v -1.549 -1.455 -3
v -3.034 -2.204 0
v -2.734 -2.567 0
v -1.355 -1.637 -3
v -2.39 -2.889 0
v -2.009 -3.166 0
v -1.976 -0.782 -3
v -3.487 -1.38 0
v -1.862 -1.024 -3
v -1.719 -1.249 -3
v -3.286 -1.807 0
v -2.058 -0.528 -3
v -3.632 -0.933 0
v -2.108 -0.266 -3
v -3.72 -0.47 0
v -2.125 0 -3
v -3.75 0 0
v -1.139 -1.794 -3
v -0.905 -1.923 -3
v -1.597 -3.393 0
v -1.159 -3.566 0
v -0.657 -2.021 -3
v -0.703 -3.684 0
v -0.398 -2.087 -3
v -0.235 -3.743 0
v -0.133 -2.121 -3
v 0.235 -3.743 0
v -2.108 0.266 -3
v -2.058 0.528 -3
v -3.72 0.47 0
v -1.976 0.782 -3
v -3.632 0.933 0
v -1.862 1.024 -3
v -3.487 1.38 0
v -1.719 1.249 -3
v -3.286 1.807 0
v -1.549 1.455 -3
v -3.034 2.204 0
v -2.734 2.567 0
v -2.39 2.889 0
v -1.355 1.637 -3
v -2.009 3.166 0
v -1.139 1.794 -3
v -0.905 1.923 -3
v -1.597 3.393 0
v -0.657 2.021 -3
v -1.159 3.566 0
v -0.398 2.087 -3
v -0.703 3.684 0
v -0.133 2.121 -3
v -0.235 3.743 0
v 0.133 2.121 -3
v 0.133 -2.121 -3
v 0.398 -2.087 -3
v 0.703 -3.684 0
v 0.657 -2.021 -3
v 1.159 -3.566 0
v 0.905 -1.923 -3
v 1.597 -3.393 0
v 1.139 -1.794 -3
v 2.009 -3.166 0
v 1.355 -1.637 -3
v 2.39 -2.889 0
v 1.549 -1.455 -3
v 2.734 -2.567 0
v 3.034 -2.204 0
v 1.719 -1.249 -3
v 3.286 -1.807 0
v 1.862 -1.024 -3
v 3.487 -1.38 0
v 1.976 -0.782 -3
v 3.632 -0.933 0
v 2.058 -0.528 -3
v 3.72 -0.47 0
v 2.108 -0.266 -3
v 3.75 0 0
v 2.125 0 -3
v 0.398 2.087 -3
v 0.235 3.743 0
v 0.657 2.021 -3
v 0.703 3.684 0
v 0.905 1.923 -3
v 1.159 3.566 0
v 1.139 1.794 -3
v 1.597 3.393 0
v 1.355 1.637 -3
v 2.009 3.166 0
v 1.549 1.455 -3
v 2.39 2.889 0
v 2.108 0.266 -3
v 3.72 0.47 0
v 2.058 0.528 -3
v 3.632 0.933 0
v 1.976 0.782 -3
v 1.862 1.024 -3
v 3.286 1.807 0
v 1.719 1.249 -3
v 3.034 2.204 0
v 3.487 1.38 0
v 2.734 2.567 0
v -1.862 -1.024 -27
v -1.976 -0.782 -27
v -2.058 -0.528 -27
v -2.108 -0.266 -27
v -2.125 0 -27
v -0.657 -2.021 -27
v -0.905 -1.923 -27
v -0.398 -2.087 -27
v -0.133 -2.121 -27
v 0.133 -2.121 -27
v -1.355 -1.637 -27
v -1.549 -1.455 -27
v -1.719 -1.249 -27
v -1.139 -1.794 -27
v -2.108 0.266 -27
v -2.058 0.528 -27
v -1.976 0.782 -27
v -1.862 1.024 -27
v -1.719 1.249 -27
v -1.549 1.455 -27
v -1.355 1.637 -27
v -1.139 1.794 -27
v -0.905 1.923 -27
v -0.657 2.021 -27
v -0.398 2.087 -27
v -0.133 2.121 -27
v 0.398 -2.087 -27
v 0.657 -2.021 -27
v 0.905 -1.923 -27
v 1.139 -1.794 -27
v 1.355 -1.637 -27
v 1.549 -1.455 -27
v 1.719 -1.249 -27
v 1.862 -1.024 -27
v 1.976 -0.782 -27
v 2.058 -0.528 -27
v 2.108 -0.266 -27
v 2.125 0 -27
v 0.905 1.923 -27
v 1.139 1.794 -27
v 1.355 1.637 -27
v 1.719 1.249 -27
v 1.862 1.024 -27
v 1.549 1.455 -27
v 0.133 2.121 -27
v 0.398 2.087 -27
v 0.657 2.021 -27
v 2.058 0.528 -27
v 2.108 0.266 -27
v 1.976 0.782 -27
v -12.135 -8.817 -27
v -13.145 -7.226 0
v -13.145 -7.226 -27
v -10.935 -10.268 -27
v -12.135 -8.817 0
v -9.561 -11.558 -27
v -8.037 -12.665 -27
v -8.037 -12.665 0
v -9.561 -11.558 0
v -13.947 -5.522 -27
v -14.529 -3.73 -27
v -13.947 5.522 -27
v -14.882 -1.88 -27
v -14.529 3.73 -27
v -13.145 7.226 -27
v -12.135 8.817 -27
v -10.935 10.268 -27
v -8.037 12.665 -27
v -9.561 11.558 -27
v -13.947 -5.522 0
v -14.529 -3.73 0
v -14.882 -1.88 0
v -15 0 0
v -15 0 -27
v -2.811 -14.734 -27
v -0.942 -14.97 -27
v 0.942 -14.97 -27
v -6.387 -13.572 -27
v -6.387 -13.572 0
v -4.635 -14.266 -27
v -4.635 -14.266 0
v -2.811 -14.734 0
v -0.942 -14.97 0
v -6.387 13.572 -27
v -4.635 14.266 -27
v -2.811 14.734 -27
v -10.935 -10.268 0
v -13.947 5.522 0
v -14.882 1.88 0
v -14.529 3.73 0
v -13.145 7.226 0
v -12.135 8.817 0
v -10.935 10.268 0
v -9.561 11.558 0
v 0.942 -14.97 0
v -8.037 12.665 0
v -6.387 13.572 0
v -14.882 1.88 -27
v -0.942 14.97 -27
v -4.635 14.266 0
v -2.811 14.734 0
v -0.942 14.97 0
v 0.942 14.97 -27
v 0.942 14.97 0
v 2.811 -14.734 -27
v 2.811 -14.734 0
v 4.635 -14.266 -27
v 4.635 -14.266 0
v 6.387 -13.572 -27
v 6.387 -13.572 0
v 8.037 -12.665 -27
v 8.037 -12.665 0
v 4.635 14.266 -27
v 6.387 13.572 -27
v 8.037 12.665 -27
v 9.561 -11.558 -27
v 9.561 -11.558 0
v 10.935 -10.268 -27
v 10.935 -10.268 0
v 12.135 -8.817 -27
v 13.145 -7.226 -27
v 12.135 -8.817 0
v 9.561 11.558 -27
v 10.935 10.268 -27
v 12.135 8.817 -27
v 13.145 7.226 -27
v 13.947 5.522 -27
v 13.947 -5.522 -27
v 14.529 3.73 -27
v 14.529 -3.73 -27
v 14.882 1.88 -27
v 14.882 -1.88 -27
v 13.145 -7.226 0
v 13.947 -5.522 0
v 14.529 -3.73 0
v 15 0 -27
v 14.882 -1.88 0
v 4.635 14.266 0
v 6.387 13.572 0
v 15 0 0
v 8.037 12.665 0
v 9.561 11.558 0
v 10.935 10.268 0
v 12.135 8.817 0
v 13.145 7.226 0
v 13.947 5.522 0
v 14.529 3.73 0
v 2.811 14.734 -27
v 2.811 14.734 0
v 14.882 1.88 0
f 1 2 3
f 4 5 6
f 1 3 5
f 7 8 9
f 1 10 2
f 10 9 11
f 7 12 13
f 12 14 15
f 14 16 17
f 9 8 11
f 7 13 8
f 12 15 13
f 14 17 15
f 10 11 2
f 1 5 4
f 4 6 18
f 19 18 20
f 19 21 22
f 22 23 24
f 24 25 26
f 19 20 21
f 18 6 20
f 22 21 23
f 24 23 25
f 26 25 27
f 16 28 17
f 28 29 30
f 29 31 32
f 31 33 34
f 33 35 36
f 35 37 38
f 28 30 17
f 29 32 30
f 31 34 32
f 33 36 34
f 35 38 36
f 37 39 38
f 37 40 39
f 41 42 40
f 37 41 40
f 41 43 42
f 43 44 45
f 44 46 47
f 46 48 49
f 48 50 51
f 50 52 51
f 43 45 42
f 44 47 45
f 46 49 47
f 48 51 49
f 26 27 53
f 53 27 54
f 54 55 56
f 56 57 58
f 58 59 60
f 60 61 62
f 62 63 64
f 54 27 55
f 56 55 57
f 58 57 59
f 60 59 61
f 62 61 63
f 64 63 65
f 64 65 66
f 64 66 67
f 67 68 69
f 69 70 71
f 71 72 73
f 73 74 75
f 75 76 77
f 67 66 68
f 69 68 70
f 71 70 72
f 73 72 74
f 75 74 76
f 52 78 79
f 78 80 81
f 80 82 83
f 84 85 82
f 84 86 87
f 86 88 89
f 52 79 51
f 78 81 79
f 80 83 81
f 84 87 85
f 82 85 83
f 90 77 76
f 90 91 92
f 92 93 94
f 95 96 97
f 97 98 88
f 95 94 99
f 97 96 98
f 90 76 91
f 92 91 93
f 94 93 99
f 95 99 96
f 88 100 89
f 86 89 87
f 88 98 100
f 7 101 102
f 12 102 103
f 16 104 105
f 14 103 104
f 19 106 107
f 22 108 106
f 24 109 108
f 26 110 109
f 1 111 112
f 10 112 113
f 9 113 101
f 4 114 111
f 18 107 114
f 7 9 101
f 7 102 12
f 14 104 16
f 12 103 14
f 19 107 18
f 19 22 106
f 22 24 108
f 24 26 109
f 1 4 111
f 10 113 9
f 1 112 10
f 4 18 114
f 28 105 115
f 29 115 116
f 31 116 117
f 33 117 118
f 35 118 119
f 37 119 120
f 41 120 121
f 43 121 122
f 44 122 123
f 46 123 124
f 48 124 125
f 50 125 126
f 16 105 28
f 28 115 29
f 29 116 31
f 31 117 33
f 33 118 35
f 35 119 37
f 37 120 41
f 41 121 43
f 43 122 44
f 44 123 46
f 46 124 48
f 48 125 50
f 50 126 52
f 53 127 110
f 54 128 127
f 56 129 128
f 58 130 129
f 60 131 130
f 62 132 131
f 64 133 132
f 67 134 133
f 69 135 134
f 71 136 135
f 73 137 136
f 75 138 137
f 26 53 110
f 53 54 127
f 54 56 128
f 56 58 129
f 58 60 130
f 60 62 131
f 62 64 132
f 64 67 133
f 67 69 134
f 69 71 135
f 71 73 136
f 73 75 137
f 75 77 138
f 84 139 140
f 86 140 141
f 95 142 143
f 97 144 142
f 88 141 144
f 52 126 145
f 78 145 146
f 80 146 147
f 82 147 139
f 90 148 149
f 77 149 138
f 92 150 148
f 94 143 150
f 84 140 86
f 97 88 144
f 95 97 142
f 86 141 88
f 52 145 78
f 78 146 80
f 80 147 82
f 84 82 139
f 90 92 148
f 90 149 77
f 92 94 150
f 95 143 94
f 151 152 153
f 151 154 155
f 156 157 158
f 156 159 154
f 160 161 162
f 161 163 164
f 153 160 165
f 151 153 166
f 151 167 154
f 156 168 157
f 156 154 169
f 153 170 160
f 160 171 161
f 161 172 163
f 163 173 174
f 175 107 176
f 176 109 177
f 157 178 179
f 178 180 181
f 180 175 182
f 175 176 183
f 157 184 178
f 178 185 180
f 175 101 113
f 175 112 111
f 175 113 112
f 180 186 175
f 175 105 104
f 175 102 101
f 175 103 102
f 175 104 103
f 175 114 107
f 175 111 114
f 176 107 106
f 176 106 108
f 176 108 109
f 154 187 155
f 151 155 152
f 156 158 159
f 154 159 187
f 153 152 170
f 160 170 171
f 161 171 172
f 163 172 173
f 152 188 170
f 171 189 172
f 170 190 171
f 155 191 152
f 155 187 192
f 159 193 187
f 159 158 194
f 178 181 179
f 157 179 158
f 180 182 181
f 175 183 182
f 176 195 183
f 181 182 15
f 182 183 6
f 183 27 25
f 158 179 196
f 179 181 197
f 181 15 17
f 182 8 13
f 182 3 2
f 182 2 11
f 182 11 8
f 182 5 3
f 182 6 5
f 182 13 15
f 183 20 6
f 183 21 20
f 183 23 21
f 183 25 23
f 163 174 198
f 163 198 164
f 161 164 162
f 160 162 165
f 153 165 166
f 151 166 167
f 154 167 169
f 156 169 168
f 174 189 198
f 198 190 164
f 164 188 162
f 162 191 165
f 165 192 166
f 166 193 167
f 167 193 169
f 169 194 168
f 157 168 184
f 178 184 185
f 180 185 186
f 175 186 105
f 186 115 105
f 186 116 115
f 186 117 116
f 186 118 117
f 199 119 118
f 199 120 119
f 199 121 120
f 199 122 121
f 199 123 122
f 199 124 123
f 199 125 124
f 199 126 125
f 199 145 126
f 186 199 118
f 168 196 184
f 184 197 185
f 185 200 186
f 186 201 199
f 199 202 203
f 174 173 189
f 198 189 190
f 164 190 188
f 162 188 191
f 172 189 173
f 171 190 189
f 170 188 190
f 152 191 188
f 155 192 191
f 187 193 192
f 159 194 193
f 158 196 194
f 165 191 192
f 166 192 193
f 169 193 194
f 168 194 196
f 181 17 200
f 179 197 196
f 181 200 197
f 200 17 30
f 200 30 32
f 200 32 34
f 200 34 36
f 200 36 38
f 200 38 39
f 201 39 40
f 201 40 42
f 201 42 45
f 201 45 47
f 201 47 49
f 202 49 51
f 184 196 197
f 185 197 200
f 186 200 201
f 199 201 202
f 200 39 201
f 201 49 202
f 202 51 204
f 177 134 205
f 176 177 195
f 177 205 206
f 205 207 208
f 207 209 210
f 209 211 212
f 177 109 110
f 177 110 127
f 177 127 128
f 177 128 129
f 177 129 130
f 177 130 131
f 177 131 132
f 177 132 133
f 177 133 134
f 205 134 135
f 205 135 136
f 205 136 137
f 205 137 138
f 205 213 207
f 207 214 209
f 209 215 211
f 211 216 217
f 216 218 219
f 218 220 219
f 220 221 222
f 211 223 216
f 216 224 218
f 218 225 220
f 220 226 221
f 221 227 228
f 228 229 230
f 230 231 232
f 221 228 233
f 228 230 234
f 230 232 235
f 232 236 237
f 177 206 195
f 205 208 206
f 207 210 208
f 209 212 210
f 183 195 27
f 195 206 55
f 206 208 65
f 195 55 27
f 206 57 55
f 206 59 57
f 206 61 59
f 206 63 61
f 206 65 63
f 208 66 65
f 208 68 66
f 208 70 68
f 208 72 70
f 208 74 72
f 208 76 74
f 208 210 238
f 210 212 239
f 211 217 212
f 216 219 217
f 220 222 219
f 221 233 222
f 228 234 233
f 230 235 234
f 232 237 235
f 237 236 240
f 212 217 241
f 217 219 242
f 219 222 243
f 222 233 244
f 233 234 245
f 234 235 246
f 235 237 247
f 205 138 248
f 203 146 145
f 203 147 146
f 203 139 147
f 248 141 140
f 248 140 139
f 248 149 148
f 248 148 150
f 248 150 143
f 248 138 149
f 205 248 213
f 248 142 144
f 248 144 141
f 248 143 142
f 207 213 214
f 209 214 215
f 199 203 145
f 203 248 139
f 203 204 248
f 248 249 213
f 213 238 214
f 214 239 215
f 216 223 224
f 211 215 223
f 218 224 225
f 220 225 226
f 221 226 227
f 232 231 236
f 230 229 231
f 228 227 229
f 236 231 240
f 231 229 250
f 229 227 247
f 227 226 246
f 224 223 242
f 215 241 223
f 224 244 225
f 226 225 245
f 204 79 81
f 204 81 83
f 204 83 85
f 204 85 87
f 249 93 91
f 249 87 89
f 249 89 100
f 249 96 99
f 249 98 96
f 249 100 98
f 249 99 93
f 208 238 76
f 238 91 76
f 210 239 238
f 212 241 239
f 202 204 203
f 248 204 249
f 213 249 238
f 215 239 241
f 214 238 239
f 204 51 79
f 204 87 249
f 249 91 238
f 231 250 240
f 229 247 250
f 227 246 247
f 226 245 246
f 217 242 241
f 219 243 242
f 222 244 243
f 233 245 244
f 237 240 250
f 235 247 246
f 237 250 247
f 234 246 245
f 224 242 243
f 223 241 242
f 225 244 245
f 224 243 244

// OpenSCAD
$fn = 50;


difference() {
	union() {
		translate(v = [0, 0, -27.0000000000]) {
			cylinder(h = 27, r = 15.0000000000);
		}
	}
	union() {
		translate(v = [0, 0, 0]) {
			rotate(a = [0, 0, 0]) {
				difference() {
					union() {
						translate(v = [0, 0, -30.0000000000]) {
							cylinder(h = 30, r = 2.0000000000);
						}
						translate(v = [0, 0, -3]) {
							cylinder(h = 3, r1 = 2.1250000000, r2 = 3.7500000000);
						}
						translate(v = [0, 0, -30.0000000000]) {
							cylinder(h = 30, r = 2.1250000000);
						}
						translate(v = [0, 0, -30.0000000000]) {
							cylinder(h = 30, r = 2.0000000000);
						}
					}
					union();
				}
			}
		}
	}
}
